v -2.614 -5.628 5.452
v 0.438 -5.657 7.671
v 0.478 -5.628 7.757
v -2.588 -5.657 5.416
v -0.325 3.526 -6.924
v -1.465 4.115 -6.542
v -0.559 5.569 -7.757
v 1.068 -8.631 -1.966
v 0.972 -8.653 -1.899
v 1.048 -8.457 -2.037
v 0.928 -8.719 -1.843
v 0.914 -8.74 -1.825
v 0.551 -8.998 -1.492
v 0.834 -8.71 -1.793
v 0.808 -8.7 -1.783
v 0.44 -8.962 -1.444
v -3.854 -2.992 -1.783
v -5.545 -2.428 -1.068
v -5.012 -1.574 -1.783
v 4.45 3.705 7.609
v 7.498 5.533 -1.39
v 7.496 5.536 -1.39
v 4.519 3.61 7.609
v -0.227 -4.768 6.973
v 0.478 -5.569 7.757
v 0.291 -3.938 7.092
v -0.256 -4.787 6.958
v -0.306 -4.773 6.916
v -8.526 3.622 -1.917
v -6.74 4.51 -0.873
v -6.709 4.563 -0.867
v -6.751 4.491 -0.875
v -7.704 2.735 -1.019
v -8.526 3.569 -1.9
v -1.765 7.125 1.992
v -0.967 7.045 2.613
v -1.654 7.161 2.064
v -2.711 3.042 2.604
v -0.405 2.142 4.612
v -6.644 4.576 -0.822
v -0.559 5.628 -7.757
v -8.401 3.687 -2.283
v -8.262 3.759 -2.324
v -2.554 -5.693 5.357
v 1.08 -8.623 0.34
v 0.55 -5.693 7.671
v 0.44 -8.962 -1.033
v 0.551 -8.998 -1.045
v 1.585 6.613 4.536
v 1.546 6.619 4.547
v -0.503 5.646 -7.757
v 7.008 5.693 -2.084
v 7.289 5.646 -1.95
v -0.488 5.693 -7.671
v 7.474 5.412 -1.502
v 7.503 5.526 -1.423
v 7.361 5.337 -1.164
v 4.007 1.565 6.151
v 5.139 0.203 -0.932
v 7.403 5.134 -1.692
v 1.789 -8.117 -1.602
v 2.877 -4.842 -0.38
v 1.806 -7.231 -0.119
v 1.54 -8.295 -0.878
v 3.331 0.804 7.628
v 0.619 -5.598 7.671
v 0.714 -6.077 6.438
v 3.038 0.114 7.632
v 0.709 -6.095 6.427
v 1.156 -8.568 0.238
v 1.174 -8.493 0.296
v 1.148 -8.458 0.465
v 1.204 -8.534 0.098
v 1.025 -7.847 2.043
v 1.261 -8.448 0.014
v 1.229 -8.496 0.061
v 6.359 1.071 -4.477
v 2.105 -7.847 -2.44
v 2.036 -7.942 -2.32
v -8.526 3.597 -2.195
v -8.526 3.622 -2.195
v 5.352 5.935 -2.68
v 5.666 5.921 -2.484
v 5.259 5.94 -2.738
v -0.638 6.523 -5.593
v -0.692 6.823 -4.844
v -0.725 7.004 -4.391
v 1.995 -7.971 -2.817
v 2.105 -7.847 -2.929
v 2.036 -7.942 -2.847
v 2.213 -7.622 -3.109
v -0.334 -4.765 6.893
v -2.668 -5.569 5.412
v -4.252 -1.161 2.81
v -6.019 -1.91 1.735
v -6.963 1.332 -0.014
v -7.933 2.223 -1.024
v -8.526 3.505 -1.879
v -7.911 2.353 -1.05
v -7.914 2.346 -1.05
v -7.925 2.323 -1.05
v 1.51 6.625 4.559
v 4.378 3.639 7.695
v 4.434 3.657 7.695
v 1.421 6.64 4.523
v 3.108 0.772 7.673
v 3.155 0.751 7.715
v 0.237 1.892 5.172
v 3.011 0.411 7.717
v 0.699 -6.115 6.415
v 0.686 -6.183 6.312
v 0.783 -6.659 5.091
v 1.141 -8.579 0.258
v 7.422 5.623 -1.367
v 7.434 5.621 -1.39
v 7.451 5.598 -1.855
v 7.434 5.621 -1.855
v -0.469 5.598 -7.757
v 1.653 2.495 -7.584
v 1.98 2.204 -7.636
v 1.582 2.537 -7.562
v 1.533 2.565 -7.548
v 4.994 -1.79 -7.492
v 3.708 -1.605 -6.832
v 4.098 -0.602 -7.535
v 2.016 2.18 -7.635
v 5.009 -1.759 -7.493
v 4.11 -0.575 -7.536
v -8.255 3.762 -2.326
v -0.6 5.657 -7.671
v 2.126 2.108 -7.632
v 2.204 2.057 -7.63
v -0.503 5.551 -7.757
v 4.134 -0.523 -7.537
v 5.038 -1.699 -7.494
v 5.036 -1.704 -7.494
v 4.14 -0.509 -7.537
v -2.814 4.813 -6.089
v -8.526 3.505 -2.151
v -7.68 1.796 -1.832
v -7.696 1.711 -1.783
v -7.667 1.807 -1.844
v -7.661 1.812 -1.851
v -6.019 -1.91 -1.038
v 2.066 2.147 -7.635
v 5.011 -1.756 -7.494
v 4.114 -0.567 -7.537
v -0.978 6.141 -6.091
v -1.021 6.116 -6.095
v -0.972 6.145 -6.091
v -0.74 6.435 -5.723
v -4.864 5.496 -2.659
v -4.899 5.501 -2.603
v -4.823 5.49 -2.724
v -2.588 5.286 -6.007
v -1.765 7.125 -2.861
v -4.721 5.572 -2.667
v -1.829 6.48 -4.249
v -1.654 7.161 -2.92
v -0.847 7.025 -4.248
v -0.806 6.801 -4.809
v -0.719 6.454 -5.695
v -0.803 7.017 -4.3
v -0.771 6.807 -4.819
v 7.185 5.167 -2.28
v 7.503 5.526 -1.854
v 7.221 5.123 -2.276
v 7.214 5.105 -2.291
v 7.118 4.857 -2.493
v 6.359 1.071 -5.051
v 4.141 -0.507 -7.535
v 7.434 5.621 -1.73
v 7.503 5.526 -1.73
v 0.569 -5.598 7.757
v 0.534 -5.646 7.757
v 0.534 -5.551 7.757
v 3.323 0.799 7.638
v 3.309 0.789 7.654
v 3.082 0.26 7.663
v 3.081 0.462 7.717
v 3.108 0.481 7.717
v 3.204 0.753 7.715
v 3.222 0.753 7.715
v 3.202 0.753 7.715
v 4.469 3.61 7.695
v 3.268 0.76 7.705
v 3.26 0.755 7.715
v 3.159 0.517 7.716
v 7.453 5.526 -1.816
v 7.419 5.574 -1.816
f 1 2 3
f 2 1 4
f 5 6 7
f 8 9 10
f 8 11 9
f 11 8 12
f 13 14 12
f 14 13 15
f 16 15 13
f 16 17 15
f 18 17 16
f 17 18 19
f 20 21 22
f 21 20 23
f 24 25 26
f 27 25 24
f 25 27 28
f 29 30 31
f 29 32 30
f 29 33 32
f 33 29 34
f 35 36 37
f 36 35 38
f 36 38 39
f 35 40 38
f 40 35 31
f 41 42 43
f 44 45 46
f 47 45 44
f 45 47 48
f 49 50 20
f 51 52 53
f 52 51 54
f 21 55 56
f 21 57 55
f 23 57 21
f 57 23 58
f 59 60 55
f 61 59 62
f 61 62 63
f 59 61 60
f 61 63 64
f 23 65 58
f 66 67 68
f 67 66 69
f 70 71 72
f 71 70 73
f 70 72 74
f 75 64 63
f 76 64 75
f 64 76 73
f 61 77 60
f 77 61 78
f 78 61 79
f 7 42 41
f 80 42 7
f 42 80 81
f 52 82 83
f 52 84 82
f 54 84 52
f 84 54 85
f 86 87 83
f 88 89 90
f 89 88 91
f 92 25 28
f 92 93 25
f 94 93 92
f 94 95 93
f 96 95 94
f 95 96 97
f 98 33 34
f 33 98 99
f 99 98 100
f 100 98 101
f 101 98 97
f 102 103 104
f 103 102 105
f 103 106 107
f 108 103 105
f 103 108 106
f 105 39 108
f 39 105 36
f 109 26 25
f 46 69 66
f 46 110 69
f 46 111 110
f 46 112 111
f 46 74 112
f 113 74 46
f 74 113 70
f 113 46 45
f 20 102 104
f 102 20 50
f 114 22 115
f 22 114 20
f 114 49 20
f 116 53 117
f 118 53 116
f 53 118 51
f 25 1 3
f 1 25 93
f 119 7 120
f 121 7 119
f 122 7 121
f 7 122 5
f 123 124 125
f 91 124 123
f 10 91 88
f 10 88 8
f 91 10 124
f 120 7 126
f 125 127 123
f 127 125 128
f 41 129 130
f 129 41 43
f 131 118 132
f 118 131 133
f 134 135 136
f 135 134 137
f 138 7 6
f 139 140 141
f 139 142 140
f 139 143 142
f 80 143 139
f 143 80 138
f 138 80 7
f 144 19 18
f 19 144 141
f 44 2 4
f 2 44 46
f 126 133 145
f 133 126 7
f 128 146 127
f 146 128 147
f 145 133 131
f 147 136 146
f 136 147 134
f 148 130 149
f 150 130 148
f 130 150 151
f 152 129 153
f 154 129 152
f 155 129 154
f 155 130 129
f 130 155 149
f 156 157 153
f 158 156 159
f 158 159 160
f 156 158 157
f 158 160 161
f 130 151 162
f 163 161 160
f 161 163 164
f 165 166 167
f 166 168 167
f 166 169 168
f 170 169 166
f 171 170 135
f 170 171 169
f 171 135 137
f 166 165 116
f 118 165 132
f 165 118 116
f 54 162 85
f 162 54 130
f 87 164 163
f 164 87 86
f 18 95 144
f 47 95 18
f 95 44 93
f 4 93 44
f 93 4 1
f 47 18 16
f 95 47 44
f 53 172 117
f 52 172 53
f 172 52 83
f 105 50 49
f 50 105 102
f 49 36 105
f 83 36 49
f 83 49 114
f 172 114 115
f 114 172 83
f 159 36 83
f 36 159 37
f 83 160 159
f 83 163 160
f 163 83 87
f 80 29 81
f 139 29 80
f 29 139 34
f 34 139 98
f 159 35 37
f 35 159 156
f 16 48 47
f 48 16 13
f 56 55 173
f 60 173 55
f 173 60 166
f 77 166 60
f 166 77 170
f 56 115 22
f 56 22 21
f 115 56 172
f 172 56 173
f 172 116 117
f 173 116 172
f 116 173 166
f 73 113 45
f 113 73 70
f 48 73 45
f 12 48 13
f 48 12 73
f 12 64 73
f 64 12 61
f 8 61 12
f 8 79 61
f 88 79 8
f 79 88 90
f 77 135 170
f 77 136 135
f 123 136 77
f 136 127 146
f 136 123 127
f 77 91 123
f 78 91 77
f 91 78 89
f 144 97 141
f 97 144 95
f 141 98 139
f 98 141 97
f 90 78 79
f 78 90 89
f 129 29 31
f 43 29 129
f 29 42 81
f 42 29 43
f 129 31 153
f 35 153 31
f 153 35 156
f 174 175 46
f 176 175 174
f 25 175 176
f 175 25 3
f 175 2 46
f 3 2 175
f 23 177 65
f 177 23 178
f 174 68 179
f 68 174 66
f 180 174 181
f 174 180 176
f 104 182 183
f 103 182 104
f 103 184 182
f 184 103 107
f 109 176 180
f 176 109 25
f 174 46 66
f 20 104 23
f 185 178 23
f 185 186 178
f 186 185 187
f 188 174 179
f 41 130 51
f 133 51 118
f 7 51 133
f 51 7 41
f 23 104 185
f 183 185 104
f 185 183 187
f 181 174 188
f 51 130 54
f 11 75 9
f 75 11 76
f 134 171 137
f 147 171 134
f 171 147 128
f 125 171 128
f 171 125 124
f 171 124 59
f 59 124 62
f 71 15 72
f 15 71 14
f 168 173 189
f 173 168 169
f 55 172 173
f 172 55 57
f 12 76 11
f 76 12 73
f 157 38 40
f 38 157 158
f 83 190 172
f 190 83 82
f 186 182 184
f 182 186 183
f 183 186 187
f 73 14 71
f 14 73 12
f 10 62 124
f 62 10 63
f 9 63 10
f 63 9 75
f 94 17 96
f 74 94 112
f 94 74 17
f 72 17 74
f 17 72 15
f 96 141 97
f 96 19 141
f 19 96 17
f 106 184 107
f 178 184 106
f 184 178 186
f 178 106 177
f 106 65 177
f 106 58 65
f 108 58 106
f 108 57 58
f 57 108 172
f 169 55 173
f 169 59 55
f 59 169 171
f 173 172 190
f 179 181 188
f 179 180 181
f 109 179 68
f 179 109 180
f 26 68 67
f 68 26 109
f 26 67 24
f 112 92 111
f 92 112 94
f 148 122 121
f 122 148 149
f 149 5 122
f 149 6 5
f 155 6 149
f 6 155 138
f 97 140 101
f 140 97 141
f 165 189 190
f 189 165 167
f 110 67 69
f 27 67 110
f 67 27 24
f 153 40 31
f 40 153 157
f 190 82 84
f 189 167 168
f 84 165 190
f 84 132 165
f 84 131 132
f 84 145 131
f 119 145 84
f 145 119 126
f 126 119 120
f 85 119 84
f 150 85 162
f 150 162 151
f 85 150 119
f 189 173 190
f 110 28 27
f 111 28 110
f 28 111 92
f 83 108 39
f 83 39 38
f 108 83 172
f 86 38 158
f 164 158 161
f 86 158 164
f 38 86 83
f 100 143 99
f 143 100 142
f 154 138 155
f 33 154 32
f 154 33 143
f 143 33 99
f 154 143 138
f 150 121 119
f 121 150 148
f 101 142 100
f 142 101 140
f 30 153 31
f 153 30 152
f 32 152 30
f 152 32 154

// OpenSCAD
// Auto-generated OpenSCAD file

    inner_points = 10*[[0.20054969961687025, -0.7846648703547799, 0.5607849288864212], [-0.593825213987971, -0.18515141359460924, -0.7149838983501856], [0.6259312435012088, 0.10711605562361853, 0.7149838983501856], [-0.16844367010363231, 0.7066295123837892, -0.5607849288864212], [0.05204957726190045, -0.8903315309220826, -0.42246593966397755], [0.7403313734536651, 0.5526003178298201, -0.17296676604139943], [-0.35354696868411156, -0.01417916531901519, 0.8759494264322145], [-0.8444976651021647, 0.3563405276717107, 0.08748092941239895], [0.3856529981973495, -0.06385619265197554, -0.8759494264322145]];

    outer_points = 10*[[0.05186484528504093, -0.5598217429238111, 0.7670841877921737], [0.7499238660434013, 0.5598217429238111, -0.16947657205566397], [-0.7499238660434013, -0.5598217429238111, 0.16947657205566397], [-0.05186484528504093, 0.5598217429238111, -0.7670841877921737], [0.44189511281724014, 0.3609594235595834, 0.7608846831151523], [-0.8554262739081575, 0.3609594235595834, -0.20606475108230704], [0.11884163653508852, -0.9300334806470967, -0.15944556277482932], [0.5502658375172237, -0.23805575111085425, -0.7382719448902207], [-0.11884163653508852, 0.9300334806470967, 0.15944556277482932]];

    // Convex hull for inner set (I)
    module inner_hull() {
        hull() {
            for (p = inner_points) {
                translate(p) sphere(r=0.1);
            }
        }
    }

    // Convex hull for outer set (O) minus inner hull (O \ I)
    module outer_minus_inner() {
        difference() {
            hull() {
                for (p = outer_points) {
                    translate(p) sphere(r=0.1);
                }
            }
            inner_hull(); // Subtract inner hull
        }
    }

    // Convex hull for outer set (O) minus all translated inner hulls
    module outer_minus_AllTranslationInner() {
        difference() {
            hull() {
                for (p = outer_points) {
                    translate(p) sphere(r=0.1);
                }
            }
            hull() {
                translate([0,0,50]) inner_hull();
                translate([0,0,-50]) inner_hull();
            }; // Subtract translated inner hulls
        }
    }

    // Difference between outer_minus_inner and outer_minus_AllTranslationInner
    module outer_minus_inner_diff() {
        difference() {
            // Outer minus inner
            difference() {
                hull() {
                    for (p = outer_points) {
                        translate(p) sphere(r=0.1);
                    }
                }
                inner_hull();
            }

            // Subtract Outer minus AllTranslationInner
            difference() {
                hull() {
                    for (p = outer_points) {
                        translate(p) sphere(r=0.1);
                    }
                }
                hull() {
                    translate([0,0,50]) inner_hull();
                    translate([0,0,-50]) inner_hull();
                };
            }
        }
    }

    // Rendering all with colors applied
    color([1, 1, 0, 1]) outer_minus_inner_diff(); // Opaque yellow
    
